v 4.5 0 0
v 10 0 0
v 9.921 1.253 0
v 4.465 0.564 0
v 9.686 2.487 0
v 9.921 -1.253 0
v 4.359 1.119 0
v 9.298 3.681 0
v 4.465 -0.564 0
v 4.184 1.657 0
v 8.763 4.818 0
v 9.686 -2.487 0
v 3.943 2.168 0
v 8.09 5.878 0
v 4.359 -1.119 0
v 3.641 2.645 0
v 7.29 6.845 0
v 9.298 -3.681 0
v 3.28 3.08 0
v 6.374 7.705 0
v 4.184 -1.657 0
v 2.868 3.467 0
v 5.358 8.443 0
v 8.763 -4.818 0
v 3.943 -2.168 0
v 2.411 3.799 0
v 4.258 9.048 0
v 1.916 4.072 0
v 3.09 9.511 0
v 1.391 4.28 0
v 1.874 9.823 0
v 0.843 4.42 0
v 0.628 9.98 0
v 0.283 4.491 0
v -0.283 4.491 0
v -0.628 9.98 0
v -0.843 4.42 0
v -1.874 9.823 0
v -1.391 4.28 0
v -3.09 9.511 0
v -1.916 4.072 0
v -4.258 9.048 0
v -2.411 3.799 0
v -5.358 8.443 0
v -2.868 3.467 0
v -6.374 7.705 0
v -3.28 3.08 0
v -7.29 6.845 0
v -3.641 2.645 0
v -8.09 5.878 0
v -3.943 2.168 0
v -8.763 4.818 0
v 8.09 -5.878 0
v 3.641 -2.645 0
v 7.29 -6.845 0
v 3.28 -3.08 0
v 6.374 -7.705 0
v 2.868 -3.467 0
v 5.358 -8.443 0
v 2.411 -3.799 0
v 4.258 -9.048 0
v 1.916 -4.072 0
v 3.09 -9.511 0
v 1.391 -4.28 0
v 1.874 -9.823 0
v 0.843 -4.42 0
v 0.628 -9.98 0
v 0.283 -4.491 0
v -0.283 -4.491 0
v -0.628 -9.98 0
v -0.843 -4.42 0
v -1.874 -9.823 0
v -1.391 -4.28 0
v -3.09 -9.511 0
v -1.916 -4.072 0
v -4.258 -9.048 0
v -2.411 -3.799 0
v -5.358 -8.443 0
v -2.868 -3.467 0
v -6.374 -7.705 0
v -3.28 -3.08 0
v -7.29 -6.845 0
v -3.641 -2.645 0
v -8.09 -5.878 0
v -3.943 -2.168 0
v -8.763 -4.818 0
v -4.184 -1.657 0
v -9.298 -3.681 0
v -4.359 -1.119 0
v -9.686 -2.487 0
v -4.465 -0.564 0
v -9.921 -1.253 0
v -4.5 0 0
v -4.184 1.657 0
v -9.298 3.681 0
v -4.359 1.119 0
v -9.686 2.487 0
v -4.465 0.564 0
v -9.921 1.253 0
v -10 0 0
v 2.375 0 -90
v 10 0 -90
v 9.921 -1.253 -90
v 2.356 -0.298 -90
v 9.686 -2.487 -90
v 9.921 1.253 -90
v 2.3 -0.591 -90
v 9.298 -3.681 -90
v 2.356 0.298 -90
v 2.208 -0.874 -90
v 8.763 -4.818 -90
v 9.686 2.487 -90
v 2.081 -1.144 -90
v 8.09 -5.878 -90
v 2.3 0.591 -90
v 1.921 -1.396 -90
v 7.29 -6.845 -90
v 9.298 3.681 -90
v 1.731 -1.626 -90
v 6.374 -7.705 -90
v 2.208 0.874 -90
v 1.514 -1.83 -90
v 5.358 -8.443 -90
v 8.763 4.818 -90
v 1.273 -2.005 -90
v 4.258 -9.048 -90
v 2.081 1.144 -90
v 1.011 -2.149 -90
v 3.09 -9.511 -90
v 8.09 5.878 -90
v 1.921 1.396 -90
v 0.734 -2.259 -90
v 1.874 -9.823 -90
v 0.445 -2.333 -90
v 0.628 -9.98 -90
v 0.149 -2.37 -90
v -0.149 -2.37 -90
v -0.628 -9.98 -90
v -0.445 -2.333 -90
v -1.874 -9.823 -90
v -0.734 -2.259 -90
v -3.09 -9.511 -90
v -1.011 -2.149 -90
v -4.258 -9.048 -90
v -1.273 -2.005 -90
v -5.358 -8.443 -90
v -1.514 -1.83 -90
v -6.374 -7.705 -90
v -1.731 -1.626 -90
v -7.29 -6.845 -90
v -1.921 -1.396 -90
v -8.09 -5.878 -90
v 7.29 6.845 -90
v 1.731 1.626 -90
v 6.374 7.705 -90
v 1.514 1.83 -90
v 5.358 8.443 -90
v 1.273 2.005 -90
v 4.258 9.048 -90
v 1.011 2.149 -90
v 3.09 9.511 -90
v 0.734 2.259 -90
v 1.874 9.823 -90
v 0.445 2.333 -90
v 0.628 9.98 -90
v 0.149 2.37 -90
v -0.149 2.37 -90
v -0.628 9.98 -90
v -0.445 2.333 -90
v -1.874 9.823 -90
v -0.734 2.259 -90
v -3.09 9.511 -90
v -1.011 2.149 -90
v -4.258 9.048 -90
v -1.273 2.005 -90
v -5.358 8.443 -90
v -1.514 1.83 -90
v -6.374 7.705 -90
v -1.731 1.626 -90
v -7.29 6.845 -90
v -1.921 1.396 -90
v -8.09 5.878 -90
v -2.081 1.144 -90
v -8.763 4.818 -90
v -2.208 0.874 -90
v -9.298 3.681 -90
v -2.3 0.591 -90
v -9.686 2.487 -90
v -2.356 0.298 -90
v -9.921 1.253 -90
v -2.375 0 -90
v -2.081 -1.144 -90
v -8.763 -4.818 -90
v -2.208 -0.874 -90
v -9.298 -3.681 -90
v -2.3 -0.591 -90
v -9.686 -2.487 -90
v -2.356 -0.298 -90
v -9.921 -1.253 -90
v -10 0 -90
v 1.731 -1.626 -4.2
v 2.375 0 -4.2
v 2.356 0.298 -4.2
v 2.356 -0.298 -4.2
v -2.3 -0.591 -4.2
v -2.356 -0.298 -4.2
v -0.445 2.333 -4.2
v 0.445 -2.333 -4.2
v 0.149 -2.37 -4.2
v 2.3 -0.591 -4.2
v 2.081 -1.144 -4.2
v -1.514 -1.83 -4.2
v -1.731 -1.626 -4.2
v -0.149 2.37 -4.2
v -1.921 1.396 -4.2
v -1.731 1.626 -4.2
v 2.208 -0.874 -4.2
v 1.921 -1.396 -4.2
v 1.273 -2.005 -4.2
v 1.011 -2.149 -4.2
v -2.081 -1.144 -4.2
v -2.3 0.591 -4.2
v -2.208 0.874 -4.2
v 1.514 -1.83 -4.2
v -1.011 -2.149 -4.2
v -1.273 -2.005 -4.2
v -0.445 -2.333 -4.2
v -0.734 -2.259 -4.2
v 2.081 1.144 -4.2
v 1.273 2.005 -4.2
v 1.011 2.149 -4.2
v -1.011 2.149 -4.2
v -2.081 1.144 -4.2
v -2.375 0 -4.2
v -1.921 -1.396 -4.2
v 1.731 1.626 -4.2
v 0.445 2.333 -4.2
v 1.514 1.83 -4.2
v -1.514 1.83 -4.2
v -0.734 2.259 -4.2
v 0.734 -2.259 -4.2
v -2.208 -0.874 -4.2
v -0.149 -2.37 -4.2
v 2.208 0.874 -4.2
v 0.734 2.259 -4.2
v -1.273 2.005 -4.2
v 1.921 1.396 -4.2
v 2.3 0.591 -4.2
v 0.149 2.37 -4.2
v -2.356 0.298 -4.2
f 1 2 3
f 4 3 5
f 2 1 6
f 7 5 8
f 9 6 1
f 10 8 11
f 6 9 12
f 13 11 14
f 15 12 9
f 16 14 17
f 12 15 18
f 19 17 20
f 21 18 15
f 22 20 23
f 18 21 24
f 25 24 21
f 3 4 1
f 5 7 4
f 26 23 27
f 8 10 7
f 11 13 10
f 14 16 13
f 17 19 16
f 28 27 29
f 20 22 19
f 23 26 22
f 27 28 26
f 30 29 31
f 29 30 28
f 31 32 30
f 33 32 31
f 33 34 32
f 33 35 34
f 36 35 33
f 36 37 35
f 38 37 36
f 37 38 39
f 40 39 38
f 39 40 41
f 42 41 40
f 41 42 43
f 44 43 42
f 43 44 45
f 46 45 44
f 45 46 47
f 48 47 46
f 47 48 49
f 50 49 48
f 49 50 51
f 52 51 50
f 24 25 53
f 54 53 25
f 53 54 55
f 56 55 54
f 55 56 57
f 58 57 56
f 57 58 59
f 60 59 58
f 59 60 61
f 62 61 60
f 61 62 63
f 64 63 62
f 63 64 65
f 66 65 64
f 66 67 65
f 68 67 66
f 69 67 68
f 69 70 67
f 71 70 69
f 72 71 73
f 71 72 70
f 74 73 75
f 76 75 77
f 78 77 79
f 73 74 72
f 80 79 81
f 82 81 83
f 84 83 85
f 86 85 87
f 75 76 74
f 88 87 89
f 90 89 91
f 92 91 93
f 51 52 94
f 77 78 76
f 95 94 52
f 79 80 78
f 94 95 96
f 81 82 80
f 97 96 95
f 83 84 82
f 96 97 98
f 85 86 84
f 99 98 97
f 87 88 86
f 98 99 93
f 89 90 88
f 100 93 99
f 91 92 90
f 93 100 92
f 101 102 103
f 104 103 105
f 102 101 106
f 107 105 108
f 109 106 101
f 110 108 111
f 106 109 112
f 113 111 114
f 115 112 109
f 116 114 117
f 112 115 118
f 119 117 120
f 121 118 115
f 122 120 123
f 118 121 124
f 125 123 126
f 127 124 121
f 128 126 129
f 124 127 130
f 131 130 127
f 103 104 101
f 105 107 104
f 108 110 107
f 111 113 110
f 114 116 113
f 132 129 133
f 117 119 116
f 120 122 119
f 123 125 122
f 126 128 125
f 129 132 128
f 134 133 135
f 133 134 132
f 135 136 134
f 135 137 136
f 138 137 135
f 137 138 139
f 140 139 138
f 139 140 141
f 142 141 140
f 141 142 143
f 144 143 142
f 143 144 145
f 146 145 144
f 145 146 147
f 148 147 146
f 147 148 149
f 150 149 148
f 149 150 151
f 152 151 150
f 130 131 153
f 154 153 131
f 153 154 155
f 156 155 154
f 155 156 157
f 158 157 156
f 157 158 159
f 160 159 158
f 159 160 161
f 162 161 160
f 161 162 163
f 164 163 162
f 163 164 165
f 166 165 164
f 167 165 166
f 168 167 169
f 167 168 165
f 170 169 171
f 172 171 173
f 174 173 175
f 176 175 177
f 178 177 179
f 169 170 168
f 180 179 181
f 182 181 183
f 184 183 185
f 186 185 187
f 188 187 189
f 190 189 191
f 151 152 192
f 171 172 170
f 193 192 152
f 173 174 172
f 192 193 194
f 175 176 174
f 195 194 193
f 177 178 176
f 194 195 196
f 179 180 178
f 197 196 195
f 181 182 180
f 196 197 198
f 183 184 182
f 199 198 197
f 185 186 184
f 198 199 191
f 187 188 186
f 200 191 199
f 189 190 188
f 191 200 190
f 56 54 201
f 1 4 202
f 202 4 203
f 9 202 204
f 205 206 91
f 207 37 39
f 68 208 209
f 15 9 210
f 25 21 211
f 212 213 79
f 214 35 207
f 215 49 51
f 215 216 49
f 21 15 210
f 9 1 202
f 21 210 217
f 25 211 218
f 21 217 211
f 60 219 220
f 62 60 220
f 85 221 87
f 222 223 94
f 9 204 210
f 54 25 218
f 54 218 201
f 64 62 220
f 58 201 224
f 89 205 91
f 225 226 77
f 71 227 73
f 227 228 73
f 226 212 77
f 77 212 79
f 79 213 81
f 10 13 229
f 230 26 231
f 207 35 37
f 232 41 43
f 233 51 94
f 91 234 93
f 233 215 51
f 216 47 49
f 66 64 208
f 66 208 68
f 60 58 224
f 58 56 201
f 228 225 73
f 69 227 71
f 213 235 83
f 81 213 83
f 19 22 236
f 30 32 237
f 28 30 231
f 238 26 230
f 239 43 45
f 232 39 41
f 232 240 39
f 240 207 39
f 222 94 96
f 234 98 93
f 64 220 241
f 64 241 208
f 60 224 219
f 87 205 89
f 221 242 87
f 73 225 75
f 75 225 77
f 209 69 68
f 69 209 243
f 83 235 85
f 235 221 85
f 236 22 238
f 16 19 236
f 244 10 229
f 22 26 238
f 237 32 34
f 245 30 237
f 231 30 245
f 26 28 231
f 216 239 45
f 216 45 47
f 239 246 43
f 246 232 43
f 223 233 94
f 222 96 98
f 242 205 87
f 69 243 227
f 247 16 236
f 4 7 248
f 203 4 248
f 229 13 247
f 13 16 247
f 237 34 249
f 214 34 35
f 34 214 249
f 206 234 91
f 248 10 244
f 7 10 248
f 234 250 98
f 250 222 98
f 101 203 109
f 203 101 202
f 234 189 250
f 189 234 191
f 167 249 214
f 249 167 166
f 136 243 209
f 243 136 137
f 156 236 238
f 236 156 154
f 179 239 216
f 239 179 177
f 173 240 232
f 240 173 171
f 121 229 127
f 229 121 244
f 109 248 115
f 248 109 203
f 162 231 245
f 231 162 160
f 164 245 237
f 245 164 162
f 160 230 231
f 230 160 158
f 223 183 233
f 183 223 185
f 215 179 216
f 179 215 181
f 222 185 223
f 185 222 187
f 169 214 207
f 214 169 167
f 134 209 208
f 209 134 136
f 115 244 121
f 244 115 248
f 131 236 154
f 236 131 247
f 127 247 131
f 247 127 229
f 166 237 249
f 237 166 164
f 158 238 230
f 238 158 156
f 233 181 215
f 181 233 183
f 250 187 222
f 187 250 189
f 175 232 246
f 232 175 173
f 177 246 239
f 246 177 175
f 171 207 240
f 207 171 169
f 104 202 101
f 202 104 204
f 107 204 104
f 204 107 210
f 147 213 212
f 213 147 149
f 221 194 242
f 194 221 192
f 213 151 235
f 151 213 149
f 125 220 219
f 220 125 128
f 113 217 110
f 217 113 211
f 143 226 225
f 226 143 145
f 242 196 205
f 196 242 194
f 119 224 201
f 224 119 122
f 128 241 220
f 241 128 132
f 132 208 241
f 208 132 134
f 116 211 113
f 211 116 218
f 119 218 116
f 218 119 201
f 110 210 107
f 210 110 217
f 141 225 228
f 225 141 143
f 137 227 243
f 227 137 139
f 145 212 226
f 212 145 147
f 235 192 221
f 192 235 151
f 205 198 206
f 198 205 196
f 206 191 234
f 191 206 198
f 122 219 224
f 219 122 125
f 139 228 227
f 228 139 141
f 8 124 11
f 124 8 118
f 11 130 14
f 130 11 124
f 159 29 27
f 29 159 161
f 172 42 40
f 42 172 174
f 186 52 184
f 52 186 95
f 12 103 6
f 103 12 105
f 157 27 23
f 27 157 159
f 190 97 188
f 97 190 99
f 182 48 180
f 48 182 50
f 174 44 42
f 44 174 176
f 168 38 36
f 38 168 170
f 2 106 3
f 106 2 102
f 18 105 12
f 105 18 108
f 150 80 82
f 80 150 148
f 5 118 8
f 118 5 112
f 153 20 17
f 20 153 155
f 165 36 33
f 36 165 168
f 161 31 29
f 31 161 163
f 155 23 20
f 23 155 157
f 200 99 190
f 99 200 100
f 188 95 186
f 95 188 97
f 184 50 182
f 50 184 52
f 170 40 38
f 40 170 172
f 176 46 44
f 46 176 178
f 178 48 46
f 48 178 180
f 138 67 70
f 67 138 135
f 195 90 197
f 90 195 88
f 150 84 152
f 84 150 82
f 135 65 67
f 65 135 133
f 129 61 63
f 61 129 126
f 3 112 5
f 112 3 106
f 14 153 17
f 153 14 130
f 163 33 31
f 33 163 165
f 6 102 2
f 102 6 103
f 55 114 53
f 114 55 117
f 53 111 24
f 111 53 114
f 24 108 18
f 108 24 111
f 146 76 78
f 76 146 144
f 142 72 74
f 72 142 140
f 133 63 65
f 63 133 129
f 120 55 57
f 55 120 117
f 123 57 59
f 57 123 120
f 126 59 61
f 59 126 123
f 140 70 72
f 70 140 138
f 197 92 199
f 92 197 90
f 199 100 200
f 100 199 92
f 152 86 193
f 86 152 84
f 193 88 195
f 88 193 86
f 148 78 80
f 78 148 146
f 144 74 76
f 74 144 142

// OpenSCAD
$fn = 50;


difference() {
	union() {
		translate(v = [0, 0, -90.0000000000]) {
			cylinder(h = 90, r = 10.0000000000);
		}
		cylinder(h = 0, r = 16.0000000000);
	}
	union() {
		translate(v = [0, 0, 0]) {
			rotate(a = [0, 0, 0]) {
				difference() {
					union() {
						#translate(v = [0, 0, -90.0000000000]) {
							cylinder(h = 90, r = 2.2500000000);
						}
						#translate(v = [0, 0, -4.2000000000]) {
							cylinder(h = 4.2000000000, r1 = 2.3750000000, r2 = 4.5000000000);
						}
						#translate(v = [0, 0, -90.0000000000]) {
							cylinder(h = 90, r = 2.3750000000);
						}
						#translate(v = [0, 0, -90.0000000000]) {
							cylinder(h = 90, r = 2.2500000000);
						}
					}
					union();
				}
			}
		}
	}
}
